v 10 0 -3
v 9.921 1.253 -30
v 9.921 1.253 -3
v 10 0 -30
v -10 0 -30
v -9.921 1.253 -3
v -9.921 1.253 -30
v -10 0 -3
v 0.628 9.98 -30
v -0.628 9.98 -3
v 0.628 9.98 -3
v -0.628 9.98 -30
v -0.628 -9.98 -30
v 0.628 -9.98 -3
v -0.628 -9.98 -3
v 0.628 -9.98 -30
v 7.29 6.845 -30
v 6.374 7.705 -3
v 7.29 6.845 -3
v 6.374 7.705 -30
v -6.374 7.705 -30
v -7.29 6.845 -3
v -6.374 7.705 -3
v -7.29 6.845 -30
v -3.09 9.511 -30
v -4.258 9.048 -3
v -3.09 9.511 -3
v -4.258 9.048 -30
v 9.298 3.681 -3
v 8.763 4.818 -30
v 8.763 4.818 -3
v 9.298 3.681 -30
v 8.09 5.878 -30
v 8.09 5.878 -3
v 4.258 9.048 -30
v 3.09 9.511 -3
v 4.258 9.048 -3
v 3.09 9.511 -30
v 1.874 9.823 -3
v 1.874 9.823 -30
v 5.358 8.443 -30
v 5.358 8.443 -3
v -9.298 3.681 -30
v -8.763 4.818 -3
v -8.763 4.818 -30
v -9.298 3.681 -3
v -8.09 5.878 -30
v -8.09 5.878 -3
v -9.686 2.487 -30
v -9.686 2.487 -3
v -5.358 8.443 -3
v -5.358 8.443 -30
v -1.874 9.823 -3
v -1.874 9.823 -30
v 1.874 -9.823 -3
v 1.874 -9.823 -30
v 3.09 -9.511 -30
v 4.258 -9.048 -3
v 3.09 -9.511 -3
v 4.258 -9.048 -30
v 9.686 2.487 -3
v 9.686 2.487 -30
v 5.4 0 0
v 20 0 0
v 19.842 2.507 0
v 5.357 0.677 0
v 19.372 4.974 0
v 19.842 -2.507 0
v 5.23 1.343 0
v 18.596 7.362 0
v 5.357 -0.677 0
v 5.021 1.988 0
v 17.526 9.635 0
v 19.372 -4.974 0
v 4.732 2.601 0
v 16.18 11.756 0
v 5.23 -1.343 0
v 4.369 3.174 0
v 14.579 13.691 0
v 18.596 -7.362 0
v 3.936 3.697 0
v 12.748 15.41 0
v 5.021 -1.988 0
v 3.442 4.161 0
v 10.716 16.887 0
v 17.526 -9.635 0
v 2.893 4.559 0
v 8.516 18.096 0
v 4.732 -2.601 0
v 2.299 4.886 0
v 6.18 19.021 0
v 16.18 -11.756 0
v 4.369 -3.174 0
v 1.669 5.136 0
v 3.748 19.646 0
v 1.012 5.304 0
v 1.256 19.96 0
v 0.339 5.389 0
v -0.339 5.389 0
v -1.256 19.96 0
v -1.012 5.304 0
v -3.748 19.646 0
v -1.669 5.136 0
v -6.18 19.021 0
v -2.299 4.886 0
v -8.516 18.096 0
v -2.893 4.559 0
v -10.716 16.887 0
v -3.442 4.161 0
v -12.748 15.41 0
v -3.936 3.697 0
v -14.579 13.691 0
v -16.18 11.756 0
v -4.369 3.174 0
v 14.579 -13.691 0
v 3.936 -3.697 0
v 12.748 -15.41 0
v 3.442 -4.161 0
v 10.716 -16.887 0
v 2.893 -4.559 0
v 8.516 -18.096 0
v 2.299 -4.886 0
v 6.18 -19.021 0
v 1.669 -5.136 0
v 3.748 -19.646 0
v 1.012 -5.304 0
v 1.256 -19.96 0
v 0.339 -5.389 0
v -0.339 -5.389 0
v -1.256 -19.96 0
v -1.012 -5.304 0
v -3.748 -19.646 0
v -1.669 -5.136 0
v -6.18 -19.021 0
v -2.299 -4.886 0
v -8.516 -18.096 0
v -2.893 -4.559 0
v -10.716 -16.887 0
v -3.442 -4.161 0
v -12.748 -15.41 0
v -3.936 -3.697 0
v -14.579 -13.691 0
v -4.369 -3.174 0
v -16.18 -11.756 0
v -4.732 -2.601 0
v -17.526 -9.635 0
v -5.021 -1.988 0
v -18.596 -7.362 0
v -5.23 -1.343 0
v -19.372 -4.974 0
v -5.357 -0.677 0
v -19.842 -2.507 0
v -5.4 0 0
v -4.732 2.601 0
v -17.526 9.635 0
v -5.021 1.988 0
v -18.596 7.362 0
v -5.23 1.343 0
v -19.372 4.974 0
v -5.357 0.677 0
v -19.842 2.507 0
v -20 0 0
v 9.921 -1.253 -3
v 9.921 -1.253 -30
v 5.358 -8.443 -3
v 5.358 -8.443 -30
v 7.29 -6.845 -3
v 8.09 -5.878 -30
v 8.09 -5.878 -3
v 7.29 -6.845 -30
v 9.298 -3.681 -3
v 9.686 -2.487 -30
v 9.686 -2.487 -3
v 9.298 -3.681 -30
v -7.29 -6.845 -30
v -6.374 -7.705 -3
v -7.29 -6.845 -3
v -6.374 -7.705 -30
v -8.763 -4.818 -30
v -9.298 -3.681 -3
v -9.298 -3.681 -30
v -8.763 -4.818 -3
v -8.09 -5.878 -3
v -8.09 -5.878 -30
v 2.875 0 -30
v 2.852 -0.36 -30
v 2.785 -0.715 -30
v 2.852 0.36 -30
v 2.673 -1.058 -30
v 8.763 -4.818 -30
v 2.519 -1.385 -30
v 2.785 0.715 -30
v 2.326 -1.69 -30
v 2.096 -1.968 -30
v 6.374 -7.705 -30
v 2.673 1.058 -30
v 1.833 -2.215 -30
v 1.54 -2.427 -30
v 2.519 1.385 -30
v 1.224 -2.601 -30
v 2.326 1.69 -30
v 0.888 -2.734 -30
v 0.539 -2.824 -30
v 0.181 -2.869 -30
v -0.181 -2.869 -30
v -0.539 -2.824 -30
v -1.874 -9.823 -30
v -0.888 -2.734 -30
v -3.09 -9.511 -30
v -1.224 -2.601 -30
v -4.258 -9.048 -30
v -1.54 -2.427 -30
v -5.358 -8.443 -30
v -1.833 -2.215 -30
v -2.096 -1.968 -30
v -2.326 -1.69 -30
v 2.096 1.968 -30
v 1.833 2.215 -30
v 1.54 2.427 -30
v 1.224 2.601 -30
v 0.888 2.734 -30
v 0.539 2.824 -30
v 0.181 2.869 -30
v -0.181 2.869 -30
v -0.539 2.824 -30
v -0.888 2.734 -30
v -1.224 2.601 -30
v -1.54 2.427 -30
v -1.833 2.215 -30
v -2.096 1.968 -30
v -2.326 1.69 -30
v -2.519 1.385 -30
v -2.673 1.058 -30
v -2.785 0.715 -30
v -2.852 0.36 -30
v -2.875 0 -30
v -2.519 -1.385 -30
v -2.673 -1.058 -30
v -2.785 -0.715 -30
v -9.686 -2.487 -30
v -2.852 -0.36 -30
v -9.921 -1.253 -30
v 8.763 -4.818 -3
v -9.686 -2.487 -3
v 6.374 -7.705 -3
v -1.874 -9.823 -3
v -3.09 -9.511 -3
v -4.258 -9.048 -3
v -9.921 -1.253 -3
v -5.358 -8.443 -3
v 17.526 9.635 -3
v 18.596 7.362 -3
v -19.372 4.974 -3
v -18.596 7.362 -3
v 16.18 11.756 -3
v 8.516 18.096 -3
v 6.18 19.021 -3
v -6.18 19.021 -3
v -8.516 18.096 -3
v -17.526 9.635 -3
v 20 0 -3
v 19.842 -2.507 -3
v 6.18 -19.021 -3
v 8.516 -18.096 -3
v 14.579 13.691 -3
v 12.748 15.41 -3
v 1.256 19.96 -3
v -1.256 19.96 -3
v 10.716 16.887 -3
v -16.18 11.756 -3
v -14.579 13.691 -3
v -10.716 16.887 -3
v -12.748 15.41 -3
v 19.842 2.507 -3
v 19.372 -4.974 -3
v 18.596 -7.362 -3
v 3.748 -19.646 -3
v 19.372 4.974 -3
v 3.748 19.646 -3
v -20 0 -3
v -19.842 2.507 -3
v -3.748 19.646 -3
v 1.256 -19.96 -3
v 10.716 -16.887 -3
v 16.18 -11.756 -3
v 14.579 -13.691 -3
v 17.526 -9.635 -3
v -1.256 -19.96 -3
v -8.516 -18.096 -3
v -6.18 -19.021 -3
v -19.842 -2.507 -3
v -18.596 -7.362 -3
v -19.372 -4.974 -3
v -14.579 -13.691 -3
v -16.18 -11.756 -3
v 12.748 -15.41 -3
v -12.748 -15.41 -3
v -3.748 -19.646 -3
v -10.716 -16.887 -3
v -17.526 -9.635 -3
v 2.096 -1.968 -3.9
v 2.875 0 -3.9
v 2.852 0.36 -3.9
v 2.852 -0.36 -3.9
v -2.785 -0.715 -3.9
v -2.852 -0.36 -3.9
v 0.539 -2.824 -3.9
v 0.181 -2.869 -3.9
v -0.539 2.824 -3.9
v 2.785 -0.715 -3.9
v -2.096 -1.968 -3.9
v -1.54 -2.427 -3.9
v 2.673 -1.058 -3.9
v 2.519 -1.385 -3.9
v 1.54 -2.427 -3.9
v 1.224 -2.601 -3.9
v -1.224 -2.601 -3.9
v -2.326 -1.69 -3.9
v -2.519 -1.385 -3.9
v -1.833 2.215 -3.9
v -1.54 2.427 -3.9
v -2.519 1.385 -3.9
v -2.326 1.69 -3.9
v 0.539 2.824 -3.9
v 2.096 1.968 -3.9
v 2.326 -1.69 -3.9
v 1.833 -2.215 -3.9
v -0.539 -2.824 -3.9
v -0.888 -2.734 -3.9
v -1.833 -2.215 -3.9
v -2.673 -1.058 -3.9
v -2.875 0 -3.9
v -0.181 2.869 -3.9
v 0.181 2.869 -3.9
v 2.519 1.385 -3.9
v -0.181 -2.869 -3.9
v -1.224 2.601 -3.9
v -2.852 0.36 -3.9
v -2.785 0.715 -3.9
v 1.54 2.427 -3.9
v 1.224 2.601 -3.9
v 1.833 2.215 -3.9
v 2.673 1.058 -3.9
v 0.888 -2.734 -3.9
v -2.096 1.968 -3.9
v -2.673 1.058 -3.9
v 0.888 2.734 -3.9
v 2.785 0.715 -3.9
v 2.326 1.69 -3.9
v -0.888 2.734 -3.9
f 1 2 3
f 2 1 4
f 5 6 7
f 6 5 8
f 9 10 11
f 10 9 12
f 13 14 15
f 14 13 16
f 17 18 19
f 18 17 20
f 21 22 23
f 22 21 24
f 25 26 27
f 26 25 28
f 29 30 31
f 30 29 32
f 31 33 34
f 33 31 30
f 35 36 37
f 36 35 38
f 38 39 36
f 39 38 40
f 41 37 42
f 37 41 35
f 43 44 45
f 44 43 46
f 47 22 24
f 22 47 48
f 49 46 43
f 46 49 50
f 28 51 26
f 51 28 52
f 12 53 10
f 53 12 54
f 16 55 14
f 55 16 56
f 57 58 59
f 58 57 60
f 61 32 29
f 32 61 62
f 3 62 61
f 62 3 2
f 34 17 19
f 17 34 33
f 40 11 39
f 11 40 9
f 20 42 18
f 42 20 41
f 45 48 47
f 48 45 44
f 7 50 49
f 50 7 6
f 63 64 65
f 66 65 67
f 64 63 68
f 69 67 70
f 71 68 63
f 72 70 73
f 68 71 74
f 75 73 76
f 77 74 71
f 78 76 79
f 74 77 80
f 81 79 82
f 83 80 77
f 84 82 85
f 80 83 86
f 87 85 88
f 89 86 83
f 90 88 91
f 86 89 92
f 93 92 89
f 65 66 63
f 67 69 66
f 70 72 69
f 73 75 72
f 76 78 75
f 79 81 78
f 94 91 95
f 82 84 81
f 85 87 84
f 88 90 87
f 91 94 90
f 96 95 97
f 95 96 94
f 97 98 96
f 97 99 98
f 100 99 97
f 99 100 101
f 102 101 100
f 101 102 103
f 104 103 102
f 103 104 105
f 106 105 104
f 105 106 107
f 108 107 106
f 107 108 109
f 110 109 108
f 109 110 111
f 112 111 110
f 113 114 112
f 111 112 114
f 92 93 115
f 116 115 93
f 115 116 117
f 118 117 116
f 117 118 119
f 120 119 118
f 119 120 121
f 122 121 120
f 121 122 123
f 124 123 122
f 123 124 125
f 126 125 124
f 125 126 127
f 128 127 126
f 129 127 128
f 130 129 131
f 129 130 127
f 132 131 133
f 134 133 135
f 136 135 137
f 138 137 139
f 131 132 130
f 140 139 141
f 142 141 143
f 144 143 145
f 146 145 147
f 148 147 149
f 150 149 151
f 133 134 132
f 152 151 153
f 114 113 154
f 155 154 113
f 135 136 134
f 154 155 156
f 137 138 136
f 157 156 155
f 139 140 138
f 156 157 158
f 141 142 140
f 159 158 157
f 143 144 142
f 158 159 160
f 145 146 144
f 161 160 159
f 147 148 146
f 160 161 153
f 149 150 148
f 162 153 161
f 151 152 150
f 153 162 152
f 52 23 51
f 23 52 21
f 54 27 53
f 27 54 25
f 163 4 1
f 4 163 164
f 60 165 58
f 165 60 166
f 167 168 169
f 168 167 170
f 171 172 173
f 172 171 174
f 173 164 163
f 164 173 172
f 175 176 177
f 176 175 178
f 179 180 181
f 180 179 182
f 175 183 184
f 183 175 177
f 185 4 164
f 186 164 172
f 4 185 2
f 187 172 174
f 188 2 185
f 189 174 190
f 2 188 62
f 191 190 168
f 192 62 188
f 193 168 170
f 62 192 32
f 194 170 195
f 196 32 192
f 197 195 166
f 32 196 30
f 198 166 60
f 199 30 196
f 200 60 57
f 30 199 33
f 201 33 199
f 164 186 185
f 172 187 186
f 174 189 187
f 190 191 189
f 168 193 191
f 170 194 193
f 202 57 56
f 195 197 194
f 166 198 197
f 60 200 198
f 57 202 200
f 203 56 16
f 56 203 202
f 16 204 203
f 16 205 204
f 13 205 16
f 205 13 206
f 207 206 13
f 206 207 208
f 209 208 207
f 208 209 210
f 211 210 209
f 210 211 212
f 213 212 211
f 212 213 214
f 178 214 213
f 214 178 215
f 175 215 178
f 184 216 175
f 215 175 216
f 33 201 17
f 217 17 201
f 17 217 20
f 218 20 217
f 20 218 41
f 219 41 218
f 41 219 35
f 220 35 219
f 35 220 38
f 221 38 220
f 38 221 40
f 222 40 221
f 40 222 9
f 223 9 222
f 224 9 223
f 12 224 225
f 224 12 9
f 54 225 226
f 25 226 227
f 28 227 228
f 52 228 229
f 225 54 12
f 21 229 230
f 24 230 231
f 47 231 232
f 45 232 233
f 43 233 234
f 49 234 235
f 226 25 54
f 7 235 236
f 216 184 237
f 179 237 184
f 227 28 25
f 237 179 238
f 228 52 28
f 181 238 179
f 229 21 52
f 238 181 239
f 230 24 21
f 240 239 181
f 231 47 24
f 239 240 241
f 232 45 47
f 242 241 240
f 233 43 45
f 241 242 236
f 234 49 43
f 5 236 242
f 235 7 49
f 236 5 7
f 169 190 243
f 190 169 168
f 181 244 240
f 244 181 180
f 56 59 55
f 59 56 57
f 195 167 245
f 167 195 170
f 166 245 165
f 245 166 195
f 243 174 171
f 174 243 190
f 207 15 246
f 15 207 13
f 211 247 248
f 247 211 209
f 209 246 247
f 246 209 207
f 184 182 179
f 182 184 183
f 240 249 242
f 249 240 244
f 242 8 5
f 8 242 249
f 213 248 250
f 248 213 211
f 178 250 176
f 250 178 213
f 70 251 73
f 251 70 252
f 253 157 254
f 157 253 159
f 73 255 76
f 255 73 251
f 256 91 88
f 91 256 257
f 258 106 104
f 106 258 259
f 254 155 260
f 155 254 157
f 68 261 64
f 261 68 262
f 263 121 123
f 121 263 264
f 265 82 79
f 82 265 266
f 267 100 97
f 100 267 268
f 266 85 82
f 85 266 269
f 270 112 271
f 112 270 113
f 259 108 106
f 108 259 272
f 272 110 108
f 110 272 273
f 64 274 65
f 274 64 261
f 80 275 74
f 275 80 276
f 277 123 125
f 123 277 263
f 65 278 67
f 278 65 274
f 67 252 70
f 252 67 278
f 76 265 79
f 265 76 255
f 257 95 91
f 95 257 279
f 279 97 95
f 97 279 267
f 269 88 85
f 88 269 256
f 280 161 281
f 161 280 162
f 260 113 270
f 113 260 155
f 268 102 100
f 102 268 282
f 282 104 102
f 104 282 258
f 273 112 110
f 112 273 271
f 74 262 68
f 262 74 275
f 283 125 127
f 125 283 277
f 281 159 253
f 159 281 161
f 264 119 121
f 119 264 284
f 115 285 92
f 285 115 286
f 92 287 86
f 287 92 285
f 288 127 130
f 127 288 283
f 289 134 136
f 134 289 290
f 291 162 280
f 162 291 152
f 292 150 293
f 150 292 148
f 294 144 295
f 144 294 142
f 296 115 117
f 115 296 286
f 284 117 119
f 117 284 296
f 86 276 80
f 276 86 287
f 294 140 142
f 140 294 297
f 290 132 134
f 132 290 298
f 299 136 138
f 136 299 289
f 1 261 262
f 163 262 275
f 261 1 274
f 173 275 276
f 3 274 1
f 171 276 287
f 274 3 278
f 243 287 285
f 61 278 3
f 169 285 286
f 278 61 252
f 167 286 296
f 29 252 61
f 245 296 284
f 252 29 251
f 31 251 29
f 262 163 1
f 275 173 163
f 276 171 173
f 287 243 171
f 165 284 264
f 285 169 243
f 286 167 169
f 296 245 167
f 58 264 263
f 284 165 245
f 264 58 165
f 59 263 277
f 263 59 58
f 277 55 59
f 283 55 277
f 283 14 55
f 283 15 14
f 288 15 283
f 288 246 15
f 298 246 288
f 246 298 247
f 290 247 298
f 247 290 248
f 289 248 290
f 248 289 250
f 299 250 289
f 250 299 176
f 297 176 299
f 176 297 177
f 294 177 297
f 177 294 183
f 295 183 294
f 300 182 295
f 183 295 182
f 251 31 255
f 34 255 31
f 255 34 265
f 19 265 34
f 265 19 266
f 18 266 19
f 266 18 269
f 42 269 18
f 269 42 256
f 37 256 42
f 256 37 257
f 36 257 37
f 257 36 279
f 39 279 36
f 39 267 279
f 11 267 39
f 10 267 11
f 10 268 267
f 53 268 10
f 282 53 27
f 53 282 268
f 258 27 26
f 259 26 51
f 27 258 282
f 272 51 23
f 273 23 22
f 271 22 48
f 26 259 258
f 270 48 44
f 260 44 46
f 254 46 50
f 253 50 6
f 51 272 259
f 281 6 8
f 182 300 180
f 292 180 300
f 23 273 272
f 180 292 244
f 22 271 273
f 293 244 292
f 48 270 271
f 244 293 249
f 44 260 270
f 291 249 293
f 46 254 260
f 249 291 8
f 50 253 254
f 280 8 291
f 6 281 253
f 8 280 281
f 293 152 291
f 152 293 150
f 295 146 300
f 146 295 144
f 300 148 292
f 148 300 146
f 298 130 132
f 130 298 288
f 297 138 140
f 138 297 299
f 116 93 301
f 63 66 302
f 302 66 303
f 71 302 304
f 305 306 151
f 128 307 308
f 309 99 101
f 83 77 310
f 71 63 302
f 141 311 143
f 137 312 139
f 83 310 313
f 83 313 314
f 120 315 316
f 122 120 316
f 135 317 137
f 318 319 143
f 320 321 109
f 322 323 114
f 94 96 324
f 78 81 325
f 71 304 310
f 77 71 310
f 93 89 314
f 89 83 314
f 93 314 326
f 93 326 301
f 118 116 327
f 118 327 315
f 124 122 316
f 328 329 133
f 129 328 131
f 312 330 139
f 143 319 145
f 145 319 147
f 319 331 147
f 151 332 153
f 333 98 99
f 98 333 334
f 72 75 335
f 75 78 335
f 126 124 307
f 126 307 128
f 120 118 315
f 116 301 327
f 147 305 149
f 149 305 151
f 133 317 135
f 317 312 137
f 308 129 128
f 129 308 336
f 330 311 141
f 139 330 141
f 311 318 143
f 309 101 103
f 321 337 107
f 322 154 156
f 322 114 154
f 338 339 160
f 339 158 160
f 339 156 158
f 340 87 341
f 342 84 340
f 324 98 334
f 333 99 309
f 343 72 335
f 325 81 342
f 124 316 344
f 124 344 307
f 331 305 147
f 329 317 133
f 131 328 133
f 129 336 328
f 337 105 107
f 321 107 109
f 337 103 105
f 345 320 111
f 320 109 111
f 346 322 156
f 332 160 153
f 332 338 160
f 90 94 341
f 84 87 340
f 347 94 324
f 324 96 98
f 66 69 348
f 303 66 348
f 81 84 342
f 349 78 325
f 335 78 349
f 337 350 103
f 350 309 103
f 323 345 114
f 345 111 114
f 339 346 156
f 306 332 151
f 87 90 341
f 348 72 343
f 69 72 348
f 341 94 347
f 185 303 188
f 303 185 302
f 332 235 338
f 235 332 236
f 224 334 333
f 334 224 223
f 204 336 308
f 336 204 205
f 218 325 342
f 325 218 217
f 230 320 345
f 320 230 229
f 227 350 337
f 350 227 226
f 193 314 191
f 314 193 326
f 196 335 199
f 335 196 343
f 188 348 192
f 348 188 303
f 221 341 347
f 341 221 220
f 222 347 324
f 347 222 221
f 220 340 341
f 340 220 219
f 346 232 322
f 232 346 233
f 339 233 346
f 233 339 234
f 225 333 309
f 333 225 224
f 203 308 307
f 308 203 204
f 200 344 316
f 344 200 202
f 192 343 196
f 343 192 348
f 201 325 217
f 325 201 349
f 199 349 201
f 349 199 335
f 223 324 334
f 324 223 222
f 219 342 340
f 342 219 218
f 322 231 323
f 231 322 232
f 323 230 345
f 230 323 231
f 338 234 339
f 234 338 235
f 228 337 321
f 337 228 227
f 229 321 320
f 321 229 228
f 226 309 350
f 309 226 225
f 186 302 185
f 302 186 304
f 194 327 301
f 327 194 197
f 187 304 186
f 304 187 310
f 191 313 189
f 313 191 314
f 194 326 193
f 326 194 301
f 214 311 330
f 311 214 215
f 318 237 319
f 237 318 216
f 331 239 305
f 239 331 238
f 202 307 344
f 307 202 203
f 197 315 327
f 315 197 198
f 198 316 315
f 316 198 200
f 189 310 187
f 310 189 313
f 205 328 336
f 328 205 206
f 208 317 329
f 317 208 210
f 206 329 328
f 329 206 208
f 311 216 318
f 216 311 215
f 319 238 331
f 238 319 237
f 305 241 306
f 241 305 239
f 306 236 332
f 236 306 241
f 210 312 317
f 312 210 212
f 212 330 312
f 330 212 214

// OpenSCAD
$fn = 50;


difference() {
	union() {
		translate(v = [0, 0, -30.0000000000]) {
			cylinder(h = 30, r = 10.0000000000);
		}
		translate(v = [0, 0, -3.0000000000]) {
			cylinder(h = 3, r = 20.0000000000);
		}
	}
	union() {
		translate(v = [0, 0, 0]) {
			rotate(a = [0, 0, 0]) {
				difference() {
					union() {
						#translate(v = [0, 0, -30.0000000000]) {
							cylinder(h = 30, r = 2.6000000000);
						}
						#translate(v = [0, 0, -3.9000000000]) {
							cylinder(h = 3.9000000000, r = 10.0000000000, r1 = 2.8750000000, r2 = 5.4000000000);
						}
						#translate(v = [0, 0, -30.0000000000]) {
							cylinder(h = 30, r = 2.8750000000);
						}
						#translate(v = [0, 0, -30.0000000000]) {
							cylinder(h = 30, r = 2.6000000000);
						}
					}
					union();
				}
			}
		}
	}
}
